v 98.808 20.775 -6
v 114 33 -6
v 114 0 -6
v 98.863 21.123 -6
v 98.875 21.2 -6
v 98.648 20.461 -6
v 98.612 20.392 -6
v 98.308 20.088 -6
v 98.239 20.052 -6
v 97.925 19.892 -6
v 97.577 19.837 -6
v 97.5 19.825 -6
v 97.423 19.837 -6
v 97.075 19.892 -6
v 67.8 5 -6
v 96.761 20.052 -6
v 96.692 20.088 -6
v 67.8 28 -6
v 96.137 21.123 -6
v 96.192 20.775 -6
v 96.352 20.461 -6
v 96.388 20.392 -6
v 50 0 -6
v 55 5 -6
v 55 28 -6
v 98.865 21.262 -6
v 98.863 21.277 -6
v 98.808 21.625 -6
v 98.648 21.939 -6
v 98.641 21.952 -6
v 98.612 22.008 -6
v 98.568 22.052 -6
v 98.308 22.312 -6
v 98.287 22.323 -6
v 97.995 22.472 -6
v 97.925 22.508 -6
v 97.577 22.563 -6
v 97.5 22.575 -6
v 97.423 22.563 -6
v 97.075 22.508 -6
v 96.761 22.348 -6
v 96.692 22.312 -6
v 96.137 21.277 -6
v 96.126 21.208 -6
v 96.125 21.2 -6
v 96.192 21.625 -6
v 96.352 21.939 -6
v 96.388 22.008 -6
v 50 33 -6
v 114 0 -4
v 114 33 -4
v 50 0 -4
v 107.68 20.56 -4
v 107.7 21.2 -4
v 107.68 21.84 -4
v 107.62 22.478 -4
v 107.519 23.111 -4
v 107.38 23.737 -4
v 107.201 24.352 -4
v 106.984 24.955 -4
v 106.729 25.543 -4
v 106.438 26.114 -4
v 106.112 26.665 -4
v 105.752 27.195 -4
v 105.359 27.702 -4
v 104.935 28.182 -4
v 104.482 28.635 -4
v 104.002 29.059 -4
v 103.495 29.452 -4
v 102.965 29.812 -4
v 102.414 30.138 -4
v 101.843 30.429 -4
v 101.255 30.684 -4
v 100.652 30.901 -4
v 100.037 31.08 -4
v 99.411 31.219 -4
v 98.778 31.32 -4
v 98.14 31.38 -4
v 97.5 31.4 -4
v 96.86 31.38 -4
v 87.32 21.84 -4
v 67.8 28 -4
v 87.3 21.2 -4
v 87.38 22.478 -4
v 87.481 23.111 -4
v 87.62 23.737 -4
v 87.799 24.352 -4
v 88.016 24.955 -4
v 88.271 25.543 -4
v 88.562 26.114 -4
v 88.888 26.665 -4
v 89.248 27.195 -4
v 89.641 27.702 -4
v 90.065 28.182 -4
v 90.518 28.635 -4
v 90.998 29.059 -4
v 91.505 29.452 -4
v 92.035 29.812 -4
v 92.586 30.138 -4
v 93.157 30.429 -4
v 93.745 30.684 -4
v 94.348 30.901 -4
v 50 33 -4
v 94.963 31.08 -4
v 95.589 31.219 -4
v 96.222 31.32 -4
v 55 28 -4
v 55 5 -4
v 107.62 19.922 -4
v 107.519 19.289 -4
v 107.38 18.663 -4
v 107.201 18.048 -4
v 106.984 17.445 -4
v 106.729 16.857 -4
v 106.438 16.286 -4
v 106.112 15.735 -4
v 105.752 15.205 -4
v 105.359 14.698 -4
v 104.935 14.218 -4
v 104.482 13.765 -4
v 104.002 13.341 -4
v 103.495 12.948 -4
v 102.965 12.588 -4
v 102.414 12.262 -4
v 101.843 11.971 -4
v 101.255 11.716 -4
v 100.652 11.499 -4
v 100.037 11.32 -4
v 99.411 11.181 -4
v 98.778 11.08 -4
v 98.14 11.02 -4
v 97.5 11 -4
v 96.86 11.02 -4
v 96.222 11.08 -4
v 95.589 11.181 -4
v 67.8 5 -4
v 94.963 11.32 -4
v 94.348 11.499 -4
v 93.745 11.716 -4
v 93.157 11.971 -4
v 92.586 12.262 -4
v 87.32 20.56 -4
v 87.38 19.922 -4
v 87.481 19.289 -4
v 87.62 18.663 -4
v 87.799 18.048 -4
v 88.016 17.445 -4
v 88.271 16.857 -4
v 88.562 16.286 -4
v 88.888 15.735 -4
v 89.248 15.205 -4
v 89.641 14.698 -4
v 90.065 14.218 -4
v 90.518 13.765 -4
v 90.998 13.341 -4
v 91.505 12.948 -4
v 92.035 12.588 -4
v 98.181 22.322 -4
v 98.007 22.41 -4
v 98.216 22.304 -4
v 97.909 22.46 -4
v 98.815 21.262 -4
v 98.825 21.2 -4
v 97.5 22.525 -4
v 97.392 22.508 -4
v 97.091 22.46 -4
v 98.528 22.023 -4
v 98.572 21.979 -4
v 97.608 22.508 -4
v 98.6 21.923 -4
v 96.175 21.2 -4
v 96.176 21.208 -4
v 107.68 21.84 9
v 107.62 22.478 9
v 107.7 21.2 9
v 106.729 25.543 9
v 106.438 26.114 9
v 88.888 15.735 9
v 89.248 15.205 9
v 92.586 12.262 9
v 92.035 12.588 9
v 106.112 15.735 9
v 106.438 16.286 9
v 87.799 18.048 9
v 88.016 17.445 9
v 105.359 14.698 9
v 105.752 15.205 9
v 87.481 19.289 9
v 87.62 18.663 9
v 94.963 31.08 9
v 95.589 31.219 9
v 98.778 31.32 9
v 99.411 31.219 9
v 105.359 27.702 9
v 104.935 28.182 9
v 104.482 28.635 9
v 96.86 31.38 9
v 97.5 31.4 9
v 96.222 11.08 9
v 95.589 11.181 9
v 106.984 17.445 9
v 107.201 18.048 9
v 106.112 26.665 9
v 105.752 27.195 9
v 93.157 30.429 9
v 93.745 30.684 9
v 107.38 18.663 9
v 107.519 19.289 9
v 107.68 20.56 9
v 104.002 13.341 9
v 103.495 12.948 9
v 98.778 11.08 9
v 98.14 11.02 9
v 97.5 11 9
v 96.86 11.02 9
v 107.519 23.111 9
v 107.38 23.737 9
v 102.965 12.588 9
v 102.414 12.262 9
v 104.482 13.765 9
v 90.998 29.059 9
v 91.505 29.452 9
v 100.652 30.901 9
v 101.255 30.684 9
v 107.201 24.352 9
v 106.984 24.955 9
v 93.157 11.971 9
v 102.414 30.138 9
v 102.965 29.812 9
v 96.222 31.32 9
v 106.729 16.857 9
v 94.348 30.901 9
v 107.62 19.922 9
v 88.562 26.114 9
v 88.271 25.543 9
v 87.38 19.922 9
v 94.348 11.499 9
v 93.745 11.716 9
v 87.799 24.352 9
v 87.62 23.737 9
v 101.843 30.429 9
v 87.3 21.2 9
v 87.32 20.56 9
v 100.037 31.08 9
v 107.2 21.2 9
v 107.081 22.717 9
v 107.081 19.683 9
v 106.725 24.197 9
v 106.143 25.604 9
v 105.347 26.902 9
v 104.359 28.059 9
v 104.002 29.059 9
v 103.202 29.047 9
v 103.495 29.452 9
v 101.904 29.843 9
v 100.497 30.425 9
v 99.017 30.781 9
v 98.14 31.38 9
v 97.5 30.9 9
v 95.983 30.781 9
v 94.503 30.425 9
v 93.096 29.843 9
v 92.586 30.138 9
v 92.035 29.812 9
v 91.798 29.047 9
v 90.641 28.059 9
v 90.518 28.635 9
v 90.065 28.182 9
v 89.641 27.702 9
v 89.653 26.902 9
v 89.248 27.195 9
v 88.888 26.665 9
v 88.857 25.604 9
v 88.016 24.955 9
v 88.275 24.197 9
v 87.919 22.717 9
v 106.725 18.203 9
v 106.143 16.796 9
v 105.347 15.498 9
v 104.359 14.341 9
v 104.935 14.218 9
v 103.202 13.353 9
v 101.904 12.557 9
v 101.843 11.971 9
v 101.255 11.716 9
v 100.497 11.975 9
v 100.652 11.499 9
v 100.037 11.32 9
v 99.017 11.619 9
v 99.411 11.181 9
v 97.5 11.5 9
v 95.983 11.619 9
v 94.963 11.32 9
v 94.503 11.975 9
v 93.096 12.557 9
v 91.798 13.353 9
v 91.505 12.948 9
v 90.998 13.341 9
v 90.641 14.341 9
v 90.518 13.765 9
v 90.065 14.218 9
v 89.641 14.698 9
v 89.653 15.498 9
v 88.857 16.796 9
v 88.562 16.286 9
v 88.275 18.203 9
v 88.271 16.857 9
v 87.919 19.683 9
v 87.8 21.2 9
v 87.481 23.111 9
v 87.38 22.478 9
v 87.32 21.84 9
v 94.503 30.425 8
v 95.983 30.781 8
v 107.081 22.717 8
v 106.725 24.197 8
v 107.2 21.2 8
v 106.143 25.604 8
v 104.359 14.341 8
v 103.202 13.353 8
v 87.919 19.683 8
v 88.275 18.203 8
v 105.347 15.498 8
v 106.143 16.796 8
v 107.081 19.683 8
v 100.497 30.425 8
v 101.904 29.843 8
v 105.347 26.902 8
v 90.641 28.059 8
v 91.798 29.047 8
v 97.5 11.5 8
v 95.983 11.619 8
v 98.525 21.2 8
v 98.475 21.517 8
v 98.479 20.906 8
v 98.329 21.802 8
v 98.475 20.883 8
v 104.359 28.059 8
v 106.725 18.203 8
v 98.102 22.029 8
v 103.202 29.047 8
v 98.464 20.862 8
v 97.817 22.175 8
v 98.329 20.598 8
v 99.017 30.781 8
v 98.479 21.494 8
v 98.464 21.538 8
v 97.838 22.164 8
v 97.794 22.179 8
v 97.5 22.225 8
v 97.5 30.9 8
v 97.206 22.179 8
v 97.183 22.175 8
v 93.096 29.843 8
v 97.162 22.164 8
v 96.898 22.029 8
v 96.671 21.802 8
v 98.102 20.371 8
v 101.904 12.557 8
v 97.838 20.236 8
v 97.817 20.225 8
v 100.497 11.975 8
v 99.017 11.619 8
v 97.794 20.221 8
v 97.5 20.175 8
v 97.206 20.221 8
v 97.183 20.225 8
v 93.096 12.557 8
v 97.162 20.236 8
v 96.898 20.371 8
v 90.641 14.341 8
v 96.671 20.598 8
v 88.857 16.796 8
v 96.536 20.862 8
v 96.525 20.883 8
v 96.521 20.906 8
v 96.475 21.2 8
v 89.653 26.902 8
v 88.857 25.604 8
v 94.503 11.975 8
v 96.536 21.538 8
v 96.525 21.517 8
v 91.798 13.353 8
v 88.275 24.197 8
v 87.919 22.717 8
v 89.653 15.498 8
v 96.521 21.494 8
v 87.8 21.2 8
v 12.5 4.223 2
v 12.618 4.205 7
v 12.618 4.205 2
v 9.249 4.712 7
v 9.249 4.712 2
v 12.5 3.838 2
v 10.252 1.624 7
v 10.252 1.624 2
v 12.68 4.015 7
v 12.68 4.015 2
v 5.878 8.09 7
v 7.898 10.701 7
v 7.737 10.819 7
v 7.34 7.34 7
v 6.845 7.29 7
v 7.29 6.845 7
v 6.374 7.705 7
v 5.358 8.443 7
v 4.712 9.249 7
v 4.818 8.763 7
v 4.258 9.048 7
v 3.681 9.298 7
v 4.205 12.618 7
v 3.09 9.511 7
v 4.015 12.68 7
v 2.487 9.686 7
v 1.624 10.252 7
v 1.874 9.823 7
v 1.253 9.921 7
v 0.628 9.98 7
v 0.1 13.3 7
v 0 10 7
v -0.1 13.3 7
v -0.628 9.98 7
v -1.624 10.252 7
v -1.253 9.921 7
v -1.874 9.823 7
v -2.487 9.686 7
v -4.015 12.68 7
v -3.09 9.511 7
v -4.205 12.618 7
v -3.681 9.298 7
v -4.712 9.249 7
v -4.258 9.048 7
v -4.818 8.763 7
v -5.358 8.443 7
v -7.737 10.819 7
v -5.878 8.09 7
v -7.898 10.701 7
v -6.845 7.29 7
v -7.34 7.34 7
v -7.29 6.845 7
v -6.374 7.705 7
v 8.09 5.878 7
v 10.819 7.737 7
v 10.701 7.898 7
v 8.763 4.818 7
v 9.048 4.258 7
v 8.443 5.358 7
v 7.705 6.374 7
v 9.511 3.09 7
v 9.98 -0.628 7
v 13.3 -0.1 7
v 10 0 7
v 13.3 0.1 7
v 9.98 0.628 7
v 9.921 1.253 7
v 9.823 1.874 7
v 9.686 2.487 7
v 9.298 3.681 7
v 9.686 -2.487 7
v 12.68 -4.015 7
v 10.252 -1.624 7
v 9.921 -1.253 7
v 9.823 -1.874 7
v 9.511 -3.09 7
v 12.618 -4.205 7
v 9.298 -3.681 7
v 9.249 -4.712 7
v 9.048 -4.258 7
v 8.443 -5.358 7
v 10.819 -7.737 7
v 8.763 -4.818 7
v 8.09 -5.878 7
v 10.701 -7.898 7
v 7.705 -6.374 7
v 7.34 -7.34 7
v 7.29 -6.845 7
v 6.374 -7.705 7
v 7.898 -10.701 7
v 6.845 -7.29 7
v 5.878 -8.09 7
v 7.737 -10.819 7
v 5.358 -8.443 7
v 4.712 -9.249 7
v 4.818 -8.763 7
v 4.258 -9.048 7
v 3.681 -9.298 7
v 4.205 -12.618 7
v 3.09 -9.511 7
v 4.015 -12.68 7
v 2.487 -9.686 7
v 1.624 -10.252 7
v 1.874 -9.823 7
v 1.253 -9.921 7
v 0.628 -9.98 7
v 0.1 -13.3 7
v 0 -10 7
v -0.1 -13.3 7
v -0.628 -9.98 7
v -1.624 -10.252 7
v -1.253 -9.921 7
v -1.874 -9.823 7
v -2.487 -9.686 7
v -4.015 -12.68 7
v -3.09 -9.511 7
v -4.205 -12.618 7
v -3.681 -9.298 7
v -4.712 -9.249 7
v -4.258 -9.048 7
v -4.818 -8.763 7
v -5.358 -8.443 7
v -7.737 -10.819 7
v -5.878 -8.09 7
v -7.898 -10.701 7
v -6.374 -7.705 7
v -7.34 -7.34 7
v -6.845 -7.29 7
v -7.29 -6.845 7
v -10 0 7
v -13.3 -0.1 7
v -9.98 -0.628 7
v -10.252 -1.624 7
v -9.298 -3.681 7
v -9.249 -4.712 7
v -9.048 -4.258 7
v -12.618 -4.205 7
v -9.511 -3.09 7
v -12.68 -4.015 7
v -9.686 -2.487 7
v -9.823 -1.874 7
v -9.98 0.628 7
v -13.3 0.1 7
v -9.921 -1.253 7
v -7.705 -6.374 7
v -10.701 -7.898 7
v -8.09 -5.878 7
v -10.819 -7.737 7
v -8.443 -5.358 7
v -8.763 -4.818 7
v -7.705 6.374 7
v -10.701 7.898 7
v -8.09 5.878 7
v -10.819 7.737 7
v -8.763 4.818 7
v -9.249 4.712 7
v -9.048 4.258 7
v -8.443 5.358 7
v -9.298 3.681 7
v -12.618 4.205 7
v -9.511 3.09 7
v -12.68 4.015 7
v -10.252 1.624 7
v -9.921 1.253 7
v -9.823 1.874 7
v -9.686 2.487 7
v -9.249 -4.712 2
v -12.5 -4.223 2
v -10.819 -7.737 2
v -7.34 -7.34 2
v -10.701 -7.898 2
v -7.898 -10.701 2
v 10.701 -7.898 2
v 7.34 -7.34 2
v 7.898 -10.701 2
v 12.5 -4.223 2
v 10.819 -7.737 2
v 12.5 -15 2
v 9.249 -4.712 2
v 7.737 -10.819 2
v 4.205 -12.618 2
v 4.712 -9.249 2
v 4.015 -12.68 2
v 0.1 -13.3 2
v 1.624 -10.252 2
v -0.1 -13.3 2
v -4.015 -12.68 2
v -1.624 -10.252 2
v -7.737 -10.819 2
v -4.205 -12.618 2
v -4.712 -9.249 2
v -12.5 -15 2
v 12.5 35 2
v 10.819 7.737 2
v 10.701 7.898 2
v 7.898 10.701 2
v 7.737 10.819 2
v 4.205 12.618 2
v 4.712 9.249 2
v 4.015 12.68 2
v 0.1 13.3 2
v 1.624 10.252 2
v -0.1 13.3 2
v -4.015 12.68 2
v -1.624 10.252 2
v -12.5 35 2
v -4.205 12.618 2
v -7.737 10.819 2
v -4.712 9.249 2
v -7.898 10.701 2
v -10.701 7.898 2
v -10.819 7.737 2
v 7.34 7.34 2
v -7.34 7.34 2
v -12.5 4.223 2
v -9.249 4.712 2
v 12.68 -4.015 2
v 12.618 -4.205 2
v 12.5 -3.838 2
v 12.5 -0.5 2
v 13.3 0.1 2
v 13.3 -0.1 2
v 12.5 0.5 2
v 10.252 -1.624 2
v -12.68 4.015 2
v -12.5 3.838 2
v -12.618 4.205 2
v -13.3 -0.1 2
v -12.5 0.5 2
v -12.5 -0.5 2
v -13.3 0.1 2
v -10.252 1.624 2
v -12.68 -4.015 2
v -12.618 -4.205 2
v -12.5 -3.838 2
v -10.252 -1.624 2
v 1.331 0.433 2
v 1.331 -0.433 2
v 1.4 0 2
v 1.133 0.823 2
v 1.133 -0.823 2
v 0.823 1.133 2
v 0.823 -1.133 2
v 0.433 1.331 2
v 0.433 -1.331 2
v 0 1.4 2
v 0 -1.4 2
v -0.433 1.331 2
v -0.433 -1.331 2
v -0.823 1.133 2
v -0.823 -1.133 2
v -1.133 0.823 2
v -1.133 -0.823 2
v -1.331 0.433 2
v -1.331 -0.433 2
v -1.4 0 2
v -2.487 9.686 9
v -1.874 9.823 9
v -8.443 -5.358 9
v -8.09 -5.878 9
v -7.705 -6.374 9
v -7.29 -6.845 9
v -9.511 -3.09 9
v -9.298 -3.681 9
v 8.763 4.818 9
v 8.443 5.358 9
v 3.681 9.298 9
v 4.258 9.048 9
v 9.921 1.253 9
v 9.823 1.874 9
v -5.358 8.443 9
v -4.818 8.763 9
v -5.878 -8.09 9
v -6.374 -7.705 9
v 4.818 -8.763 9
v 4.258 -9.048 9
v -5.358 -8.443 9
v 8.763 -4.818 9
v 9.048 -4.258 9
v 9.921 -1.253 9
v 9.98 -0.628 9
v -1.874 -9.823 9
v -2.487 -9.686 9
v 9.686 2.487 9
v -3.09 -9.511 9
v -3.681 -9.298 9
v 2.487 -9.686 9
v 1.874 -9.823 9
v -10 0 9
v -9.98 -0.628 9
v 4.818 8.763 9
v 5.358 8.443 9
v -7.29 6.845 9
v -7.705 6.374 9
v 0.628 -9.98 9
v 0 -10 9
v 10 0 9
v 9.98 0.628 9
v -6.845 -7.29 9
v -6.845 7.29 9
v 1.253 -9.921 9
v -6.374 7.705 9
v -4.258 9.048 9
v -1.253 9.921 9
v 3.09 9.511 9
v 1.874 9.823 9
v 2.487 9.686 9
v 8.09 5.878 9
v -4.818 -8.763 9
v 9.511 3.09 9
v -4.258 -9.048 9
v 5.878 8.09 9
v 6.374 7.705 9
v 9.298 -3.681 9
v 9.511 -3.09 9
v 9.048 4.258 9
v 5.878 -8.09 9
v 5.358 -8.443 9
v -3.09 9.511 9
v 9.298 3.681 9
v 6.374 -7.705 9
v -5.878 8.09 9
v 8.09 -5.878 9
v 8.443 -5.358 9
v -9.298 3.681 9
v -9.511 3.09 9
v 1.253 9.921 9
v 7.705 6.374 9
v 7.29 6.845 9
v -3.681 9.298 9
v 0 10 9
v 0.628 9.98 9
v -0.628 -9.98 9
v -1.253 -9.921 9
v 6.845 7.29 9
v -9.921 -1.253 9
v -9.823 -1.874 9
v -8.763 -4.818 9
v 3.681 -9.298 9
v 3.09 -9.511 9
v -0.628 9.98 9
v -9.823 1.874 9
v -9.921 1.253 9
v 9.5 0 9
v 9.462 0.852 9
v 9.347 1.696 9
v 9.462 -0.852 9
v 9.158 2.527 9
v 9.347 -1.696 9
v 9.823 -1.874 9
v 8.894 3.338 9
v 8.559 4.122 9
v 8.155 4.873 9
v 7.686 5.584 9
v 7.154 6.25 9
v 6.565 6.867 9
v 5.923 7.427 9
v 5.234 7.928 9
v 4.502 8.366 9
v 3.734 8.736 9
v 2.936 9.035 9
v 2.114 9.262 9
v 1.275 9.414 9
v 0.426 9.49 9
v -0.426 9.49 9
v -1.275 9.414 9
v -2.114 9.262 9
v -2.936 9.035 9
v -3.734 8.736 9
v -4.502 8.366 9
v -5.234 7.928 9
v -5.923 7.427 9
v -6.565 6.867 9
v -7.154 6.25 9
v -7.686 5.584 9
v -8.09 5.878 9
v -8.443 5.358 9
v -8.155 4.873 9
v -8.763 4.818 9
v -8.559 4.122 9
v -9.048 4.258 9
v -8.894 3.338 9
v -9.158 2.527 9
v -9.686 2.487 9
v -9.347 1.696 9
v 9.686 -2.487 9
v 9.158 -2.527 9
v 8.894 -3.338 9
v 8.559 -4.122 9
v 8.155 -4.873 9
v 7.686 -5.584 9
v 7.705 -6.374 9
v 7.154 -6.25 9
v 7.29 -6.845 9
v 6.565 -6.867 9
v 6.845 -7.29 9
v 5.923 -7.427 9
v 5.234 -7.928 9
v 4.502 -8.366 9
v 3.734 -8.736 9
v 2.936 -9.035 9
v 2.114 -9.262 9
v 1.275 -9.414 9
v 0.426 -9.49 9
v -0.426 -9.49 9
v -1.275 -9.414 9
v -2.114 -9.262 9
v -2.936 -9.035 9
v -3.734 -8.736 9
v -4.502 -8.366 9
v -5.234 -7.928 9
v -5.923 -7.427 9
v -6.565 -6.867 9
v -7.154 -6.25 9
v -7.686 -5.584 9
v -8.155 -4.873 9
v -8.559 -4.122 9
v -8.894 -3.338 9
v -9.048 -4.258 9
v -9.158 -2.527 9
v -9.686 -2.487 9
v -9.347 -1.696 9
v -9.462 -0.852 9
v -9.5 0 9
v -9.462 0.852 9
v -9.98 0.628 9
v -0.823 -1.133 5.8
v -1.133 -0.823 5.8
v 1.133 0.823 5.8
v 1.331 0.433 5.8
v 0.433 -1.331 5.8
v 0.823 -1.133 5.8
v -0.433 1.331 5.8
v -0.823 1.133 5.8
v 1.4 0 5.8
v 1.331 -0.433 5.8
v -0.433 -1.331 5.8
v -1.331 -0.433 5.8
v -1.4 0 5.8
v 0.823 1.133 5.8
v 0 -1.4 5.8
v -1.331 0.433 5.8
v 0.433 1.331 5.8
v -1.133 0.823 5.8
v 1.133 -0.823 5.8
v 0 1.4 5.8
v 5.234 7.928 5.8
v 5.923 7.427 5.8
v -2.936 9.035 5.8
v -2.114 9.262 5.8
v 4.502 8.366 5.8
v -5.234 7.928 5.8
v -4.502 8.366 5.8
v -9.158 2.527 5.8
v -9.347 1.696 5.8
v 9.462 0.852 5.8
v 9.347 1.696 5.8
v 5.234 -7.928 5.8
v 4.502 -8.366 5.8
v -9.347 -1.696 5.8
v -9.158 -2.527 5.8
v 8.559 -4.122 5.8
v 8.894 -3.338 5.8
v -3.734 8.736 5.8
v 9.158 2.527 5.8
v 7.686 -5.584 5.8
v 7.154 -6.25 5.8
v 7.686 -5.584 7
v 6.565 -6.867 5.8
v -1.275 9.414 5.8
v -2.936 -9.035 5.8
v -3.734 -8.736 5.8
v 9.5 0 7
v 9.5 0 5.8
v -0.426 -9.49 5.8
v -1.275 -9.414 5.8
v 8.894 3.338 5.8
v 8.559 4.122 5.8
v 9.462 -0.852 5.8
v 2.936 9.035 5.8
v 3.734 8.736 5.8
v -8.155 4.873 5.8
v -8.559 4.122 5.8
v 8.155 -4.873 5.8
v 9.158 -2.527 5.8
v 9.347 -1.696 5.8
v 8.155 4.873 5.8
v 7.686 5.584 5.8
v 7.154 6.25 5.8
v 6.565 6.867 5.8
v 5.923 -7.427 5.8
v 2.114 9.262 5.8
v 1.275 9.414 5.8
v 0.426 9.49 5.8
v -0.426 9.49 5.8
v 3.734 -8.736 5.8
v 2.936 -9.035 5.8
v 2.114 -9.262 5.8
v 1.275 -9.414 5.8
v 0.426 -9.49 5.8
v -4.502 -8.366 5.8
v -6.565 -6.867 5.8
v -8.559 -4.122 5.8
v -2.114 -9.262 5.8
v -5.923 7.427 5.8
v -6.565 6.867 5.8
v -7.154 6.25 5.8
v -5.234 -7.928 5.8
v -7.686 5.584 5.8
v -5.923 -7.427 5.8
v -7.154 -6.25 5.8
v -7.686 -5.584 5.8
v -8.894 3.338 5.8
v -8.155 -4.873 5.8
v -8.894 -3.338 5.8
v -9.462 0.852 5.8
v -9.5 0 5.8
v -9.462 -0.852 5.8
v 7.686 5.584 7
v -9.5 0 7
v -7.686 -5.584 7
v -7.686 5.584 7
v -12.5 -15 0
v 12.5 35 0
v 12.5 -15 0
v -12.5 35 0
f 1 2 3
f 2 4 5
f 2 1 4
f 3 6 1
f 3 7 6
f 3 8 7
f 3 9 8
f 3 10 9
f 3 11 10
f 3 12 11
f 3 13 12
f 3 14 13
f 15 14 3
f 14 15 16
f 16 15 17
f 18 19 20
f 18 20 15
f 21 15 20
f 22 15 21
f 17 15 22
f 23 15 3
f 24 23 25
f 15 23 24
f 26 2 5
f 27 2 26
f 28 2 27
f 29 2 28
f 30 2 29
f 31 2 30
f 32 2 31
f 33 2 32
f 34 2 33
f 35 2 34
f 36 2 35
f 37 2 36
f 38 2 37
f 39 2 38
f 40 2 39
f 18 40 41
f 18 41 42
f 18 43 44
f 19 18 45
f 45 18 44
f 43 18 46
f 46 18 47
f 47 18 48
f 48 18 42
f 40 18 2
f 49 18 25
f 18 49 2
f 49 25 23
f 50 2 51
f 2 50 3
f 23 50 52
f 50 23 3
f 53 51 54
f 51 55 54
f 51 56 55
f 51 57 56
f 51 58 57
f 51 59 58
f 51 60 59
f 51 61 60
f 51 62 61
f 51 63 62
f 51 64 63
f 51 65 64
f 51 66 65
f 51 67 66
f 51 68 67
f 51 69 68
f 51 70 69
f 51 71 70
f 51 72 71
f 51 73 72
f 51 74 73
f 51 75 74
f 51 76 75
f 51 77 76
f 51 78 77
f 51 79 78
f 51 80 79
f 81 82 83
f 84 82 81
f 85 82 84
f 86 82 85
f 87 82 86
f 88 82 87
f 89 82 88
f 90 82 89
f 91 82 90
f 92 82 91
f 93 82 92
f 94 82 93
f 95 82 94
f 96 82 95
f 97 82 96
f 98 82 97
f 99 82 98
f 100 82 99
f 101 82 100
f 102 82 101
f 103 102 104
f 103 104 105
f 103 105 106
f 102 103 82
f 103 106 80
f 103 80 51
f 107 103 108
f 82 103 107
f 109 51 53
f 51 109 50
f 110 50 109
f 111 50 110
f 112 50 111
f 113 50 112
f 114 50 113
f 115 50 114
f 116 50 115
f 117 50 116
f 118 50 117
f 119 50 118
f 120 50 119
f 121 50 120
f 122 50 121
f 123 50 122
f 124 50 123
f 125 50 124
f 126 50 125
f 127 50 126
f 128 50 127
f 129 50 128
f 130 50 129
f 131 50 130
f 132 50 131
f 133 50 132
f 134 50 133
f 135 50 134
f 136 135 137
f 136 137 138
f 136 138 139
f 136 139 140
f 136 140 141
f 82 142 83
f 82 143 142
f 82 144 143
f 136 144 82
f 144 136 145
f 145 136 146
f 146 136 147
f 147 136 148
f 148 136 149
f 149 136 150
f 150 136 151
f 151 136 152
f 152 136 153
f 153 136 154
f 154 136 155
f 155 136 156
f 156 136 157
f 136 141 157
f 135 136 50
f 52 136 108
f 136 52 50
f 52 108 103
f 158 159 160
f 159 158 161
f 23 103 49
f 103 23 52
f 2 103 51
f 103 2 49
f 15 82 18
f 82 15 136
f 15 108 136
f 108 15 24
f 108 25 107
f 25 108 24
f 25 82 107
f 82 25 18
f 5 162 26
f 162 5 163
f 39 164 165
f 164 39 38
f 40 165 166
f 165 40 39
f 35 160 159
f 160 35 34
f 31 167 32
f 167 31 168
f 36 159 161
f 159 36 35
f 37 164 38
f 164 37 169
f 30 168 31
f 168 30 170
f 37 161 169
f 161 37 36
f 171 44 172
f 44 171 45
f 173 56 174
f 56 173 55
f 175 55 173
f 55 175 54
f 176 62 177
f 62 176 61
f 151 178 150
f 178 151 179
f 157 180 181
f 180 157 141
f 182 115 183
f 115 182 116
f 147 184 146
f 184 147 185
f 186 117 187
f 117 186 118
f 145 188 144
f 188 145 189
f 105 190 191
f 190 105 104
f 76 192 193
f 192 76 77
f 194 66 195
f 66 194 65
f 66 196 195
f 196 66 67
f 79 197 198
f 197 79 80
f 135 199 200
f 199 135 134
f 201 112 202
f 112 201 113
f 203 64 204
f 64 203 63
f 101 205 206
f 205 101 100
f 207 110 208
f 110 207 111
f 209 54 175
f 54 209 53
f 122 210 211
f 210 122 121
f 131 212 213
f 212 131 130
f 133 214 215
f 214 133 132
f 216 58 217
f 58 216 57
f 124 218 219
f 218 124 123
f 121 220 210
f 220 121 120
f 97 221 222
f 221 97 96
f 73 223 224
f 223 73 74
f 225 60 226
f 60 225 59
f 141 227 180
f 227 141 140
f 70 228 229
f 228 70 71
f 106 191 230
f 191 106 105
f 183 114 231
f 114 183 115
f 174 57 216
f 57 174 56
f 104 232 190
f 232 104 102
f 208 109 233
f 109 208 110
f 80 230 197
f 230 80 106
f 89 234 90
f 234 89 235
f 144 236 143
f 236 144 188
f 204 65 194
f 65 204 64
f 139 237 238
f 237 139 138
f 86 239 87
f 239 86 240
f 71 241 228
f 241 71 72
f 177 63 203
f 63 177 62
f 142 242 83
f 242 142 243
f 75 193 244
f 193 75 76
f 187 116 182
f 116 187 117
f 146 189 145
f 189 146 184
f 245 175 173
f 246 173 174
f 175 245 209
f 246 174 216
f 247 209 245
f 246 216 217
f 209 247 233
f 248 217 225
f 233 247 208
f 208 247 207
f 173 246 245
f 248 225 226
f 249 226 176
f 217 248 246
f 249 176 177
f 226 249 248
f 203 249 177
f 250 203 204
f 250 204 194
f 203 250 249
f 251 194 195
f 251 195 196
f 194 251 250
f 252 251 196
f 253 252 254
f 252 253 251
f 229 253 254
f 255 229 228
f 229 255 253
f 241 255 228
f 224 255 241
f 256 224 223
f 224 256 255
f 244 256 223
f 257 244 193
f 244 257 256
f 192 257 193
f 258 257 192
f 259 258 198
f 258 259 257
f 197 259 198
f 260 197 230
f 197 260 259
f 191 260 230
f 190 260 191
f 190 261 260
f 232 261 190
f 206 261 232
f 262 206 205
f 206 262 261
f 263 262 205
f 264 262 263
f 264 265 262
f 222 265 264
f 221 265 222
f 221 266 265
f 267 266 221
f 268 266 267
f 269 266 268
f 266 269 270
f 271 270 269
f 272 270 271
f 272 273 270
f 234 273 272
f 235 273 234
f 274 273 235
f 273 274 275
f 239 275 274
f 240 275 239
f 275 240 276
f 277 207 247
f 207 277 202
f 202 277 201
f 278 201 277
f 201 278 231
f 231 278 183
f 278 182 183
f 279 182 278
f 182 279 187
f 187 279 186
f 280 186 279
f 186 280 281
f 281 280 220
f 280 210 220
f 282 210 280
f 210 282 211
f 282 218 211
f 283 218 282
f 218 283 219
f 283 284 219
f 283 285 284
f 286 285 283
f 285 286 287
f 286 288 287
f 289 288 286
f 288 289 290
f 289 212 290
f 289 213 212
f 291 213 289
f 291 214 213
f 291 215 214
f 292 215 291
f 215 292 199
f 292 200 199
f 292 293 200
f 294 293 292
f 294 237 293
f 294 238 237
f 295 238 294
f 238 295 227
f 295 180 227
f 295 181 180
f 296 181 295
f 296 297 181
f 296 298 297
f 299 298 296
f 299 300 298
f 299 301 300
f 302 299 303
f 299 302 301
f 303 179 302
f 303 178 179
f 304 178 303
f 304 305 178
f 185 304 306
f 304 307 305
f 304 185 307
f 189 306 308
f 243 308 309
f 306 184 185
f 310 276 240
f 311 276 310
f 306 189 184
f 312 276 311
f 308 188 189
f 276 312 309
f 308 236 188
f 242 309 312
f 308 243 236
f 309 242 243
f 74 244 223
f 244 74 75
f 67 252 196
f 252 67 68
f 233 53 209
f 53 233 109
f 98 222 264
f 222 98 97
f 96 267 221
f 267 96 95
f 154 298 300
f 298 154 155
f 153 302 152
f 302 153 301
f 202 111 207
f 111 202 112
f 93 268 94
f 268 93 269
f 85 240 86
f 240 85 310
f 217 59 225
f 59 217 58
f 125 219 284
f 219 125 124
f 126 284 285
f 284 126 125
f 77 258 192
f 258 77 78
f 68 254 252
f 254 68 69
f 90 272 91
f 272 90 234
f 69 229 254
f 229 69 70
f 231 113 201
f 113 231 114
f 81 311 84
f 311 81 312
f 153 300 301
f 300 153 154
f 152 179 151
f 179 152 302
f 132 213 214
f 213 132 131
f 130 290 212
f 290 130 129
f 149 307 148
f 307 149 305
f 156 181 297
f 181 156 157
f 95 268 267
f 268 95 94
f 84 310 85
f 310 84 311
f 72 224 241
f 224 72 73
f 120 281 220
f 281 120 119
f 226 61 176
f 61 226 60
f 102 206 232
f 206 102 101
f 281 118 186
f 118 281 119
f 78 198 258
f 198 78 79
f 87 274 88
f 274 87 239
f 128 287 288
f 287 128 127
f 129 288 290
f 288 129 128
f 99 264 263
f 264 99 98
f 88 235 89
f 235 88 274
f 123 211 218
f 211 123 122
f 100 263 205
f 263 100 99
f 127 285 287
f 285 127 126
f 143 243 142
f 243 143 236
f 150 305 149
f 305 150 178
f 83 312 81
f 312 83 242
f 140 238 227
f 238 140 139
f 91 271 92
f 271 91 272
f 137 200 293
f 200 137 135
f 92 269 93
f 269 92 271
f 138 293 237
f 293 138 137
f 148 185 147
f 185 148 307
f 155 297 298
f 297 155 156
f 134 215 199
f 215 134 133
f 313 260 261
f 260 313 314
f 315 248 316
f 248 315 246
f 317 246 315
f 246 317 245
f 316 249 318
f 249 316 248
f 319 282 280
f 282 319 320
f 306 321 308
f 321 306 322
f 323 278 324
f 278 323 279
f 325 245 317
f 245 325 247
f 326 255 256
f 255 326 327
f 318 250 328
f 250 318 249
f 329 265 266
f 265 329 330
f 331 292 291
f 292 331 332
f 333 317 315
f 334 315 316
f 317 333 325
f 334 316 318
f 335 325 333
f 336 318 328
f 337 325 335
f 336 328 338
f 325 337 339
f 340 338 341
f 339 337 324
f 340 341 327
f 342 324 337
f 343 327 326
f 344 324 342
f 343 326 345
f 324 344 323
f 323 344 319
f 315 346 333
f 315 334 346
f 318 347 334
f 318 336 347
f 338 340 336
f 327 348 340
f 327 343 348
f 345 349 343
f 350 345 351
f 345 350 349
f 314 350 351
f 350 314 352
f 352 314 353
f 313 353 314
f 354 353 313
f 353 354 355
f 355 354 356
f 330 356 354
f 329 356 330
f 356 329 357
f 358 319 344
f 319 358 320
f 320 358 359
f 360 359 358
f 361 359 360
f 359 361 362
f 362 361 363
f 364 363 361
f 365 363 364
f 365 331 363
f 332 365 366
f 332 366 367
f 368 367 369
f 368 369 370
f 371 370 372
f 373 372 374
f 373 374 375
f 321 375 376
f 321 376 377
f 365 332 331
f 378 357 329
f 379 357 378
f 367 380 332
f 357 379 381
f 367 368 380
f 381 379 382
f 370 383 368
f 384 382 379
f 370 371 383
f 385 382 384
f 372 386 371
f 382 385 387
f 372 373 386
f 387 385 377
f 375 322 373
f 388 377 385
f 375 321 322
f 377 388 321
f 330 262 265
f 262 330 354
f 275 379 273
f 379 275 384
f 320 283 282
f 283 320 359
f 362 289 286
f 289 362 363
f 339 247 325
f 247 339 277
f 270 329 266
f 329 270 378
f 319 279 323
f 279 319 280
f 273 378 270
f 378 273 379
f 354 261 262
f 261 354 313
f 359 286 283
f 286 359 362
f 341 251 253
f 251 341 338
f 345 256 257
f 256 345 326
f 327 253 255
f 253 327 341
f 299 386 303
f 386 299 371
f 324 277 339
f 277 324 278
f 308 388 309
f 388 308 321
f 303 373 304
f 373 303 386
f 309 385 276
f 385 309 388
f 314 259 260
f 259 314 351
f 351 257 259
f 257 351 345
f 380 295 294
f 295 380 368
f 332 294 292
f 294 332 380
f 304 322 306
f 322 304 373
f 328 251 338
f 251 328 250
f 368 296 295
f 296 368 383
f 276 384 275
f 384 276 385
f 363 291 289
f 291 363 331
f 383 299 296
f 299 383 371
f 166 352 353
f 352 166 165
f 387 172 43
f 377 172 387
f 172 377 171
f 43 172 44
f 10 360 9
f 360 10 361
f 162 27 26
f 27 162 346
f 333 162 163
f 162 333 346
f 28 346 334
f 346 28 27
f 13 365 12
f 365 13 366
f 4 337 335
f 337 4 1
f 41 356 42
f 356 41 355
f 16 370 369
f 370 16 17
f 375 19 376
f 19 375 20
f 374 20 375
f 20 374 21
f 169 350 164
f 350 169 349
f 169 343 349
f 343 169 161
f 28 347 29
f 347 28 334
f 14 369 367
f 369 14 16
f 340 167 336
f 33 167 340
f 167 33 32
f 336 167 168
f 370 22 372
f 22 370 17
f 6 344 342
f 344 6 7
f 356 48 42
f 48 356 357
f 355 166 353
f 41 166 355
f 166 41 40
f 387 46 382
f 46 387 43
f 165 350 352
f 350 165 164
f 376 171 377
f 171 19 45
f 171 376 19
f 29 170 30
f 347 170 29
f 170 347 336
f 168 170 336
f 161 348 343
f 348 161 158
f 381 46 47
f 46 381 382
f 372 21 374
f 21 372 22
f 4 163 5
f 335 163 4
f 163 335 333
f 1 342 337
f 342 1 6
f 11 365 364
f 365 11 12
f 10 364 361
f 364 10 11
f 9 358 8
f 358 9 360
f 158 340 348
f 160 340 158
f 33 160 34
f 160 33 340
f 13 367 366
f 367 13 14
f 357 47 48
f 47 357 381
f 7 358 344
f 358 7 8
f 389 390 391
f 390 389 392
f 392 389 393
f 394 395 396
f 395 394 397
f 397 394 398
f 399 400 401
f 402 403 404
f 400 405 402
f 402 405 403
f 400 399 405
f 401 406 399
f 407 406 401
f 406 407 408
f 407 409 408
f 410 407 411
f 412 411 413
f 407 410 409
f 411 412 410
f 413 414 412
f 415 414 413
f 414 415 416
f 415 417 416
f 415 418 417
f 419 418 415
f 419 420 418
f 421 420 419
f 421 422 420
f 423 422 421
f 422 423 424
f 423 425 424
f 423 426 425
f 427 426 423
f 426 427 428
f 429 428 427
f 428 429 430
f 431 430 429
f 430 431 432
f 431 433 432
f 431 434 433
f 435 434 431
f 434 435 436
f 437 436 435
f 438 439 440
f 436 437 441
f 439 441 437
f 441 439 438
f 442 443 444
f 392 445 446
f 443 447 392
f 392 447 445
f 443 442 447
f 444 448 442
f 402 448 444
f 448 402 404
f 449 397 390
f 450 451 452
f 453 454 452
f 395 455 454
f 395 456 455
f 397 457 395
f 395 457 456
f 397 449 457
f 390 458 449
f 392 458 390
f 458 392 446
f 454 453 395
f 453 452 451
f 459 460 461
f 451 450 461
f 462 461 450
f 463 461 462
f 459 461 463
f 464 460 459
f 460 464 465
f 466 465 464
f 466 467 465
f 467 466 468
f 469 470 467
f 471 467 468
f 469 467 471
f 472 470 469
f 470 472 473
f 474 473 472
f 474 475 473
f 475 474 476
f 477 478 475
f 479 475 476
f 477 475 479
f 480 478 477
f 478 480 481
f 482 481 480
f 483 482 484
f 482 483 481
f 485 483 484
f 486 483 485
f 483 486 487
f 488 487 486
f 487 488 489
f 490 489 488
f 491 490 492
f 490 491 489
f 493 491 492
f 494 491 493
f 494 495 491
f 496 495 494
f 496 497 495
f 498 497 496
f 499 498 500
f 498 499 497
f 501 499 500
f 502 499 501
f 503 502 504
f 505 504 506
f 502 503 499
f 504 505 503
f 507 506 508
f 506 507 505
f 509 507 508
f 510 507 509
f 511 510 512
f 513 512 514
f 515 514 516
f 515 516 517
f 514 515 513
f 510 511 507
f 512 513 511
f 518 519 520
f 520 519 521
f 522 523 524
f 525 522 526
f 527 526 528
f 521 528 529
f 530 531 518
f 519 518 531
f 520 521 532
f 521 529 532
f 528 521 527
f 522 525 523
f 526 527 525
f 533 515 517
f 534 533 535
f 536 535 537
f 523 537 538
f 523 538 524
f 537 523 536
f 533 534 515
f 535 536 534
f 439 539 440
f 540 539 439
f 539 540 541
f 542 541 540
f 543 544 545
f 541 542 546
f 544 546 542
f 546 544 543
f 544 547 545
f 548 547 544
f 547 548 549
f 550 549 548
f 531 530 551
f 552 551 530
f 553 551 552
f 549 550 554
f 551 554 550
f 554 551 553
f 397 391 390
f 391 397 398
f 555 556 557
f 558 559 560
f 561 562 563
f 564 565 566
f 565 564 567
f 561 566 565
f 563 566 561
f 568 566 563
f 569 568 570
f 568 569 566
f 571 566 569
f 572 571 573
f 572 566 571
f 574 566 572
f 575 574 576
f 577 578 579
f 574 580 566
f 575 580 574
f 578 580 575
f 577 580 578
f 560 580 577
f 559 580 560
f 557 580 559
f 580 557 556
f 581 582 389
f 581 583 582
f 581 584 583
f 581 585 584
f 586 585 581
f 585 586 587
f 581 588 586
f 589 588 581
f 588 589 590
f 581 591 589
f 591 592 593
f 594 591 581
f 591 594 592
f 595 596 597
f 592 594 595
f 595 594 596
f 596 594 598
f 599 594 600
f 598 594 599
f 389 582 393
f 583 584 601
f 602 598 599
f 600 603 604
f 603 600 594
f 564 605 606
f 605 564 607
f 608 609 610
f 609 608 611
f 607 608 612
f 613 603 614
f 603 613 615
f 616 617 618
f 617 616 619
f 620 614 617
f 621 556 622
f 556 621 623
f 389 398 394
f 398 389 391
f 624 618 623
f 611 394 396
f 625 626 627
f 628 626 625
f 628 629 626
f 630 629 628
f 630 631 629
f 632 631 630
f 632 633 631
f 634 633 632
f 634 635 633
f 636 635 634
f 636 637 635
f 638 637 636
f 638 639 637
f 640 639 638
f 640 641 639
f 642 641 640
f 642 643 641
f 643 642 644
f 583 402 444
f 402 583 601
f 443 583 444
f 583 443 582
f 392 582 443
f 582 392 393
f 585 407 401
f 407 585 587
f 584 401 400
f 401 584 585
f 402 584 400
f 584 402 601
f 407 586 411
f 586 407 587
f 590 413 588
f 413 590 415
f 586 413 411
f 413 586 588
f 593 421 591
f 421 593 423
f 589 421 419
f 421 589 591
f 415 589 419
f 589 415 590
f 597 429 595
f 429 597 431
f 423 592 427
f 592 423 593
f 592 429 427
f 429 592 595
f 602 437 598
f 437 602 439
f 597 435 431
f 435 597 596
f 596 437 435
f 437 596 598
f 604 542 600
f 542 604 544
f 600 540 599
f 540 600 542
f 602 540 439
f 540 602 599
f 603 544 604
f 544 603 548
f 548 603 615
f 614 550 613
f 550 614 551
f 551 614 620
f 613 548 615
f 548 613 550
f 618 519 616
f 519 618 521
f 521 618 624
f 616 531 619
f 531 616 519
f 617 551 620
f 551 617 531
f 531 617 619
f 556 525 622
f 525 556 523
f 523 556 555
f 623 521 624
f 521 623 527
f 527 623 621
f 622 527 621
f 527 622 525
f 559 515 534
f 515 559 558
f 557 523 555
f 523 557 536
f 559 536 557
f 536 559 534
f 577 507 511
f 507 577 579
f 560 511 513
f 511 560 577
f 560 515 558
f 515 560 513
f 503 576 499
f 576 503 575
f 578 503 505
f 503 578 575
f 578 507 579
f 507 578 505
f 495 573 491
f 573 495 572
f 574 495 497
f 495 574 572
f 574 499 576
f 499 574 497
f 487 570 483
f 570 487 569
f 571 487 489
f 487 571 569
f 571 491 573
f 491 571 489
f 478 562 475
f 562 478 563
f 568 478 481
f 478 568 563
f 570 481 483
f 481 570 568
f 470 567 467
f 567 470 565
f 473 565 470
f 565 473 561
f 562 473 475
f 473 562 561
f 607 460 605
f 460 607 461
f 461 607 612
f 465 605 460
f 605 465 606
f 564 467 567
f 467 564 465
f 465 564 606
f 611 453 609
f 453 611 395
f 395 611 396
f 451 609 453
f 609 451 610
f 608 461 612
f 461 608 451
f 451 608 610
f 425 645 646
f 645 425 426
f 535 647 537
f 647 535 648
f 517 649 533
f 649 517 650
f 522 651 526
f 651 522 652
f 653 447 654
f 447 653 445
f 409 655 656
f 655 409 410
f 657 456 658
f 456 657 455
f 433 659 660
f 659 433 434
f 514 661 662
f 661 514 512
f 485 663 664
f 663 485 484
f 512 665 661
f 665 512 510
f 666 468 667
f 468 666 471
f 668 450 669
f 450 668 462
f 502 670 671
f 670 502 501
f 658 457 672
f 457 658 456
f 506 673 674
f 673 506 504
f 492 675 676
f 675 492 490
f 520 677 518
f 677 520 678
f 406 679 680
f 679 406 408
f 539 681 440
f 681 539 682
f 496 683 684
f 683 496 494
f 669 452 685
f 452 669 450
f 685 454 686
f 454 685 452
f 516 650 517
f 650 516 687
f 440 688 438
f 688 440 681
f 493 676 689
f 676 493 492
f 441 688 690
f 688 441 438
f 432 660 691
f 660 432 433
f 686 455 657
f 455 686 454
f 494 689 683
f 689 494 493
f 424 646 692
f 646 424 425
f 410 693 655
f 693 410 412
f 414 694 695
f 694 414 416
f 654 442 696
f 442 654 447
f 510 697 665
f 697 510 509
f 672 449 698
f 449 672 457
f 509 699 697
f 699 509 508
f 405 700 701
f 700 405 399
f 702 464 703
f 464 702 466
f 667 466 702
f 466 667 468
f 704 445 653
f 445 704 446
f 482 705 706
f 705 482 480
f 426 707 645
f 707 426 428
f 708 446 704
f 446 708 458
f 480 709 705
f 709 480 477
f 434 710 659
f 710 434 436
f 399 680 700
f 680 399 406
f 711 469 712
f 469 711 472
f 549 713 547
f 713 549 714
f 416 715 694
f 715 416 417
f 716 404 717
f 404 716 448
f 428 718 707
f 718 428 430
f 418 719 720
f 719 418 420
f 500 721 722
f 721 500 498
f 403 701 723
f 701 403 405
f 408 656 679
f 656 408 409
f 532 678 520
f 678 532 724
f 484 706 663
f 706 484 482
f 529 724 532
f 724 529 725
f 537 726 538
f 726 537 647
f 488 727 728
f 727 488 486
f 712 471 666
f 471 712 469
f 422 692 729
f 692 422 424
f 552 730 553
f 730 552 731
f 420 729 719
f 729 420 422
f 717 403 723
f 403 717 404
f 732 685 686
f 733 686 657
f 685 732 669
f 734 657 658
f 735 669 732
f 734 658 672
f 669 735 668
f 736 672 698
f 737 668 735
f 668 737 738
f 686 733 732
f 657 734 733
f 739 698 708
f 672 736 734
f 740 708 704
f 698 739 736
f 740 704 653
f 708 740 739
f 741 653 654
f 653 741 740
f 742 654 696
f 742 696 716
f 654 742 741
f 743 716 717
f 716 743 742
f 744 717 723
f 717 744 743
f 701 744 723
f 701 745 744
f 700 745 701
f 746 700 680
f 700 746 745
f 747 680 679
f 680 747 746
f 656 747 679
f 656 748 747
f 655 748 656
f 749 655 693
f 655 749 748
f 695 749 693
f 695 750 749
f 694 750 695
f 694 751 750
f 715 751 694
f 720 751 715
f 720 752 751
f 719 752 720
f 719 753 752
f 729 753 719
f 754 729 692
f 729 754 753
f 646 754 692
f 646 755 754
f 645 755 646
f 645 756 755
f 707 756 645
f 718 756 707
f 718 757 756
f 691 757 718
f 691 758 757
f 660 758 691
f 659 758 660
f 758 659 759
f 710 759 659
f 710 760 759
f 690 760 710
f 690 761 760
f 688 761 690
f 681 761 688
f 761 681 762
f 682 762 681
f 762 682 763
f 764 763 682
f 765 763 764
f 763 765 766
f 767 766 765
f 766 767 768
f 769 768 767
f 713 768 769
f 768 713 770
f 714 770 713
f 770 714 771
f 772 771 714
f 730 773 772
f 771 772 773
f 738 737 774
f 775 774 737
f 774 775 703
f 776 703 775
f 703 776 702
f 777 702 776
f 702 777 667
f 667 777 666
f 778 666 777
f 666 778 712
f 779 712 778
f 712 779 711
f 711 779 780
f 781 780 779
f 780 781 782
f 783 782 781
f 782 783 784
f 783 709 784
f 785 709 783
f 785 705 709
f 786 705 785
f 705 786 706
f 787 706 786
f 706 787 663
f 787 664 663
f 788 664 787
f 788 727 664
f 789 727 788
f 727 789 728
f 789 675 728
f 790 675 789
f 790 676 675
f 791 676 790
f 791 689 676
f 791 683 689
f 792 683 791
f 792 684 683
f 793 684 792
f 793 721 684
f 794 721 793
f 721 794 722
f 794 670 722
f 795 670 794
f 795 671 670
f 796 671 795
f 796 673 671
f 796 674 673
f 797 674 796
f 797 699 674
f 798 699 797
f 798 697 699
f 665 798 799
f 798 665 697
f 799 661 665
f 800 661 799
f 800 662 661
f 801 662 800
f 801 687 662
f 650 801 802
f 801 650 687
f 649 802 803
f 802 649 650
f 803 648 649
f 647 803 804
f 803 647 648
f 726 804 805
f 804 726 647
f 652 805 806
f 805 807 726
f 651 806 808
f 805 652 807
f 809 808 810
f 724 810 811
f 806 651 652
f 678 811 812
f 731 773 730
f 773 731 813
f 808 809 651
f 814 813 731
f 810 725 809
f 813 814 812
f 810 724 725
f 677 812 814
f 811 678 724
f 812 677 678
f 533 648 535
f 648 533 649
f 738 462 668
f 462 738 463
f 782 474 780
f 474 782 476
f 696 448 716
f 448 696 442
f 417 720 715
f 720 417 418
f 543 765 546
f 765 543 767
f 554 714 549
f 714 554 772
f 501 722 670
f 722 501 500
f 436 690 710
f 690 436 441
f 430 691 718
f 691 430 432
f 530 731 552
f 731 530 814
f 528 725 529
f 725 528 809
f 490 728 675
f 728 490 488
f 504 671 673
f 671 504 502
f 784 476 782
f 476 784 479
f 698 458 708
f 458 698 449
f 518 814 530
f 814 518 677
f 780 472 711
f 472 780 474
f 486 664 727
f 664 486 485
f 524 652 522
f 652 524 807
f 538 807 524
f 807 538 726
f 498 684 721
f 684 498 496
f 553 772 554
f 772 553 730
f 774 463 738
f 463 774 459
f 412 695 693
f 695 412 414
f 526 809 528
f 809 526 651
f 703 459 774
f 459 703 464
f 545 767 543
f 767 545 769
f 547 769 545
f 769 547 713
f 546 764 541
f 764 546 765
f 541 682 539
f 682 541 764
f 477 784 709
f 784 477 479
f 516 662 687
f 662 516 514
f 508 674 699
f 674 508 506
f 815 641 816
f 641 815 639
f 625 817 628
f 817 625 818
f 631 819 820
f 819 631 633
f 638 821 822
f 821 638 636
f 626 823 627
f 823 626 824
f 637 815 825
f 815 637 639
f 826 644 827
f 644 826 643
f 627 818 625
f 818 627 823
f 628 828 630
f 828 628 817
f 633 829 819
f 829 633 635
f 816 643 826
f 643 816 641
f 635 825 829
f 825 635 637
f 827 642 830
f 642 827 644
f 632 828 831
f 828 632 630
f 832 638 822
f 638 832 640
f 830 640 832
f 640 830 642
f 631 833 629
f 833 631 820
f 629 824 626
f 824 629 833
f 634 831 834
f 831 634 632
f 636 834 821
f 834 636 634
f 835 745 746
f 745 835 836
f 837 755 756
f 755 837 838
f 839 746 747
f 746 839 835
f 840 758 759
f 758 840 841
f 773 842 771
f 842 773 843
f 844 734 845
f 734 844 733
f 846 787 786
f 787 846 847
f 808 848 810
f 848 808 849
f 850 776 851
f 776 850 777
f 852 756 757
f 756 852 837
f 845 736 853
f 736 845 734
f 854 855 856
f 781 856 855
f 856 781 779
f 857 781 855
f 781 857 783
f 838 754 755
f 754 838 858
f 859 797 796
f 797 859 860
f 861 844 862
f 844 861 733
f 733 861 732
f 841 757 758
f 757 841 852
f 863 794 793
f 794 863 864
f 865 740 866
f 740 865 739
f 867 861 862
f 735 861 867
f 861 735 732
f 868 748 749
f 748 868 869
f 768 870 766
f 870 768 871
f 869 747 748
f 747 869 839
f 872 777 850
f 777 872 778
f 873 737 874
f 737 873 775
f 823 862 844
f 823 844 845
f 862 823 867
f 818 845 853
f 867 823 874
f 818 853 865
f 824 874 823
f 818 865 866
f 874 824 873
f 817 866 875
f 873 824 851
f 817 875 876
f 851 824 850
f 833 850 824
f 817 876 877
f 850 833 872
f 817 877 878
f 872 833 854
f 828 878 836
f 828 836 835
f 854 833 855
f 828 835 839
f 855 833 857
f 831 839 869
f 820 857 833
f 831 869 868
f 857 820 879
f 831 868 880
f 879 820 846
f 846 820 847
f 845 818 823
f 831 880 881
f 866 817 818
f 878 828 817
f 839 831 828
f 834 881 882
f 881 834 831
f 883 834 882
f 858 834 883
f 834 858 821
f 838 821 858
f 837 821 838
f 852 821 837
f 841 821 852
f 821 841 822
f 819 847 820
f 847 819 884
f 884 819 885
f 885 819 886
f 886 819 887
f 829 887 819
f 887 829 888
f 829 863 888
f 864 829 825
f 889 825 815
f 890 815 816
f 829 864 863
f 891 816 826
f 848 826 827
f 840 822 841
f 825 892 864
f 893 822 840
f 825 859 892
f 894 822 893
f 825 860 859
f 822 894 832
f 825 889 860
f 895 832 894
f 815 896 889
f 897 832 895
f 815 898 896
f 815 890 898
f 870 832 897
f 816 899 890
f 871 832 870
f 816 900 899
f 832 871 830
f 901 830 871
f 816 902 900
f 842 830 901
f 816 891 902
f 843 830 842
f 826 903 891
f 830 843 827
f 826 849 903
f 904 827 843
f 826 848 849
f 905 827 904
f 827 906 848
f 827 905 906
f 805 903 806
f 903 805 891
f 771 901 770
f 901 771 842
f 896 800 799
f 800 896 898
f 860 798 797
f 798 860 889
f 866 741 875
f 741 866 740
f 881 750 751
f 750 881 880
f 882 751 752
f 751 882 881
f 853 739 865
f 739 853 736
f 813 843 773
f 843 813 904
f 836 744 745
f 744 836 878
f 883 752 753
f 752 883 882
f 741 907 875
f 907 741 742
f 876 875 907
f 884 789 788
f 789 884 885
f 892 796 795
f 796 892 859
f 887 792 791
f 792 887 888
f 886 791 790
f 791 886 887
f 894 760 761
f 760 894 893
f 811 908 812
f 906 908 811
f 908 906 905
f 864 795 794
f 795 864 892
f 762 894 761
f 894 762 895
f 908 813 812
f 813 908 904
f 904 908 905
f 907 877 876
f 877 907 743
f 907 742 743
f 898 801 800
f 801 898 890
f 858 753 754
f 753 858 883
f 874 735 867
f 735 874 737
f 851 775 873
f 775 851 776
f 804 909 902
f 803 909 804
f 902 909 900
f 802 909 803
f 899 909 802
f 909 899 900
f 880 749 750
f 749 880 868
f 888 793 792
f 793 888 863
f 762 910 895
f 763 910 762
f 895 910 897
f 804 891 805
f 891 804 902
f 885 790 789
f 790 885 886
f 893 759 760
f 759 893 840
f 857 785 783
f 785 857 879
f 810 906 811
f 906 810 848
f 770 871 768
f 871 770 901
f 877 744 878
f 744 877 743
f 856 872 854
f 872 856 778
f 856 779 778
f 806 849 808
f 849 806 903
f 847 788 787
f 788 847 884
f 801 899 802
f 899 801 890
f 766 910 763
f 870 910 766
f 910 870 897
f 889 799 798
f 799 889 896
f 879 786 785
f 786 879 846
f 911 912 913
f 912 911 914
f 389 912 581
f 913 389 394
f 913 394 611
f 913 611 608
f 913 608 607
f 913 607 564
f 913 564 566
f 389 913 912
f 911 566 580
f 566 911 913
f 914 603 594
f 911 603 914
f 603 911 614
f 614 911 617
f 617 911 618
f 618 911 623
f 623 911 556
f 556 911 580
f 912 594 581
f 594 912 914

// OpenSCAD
bearing_outer_bore = 19/2;
buffer = 1/2;

module tooth(degree,radius,h) {
    points = [ [0,-2] , [0,2] , [3.8,0.1], [3.8,-0.1] ];
    x = radius * cos(degree);
    y = radius * sin(degree);
    translate([x,y,0]) {
        rotate([0,0,degree]) {
            linear_extrude(height = h) {
                polygon(points);
            }
        }
    }
}

module gear_with_bearing(teeth, thickness, inner_bore, outer_bore) {
    difference() {

        cylinder(thickness,outer_bore,outer_bore,$fn = 100);
        translate([0,0,-1]) {
            cylinder(thickness+2,inner_bore,inner_bore,$fn = 20);
    
        }
        translate([0,0,thickness-3.2]) {
            cylinder(thickness,bearing_outer_bore,bearing_outer_bore, $fn = 70);
        }
    }
    deg = 360/teeth;
    for (i = [deg:deg:360]) {
        tooth(i,outer_bore-.5,thickness - 2);
    }
}

module drive_gear(teeth, thickness, inner_bore, outer_bore) {
    difference() {

        cylinder(thickness,outer_bore,outer_bore,$fn = 100);
        translate([0,0,-1]) {
            cylinder(thickness+2,inner_bore,inner_bore,$fn = 20);
            
        }
    }
    deg = 360/teeth;
    for (i = [deg:deg:360]) {
        tooth(i,outer_bore-1);
    }
}

module base(width, length) {
    base_points = [ [0,0],[length,0],[length,width],[0,width] ];
    cutout_width = 23;
    cutout_len = 12.8;
    axel_x = 5 + cutout_width/2 + 31; // two gears added 10.6 + 24.94 + buffer
    axel_y = 21.2;
    cutout_points = [ [0,0],[cutout_len,0],[cutout_len,cutout_width],[0,cutout_width]];
    difference() {
        linear_extrude(height=2) {
            polygon(base_points);
        }
        translate ([5,5,-1]) {
            linear_extrude(height=4) {
                polygon(cutout_points);
            }
        }
        translate([axel_x,axel_y,-5]) {
            cylinder(20,1.5,$fn=20);
        }
    }
    translate([axel_x,axel_y,0]) {
        difference() {
            cylinder(h=15,r=bearing_outer_bore + buffer+.2, $fn=100);
            translate([0,0,14]) {
                cylinder(h=2, r=bearing_outer_bore + 0.2);
            }
            translate([0,0,-5]) {
                cylinder(20,1.5,$fn=20);
            }
        }
    }
}

translate([50,0,-6]) {
    base(33,64);
}

//translate([-50,0,0]) {
//    gear_with_bearing(20,3.6,1.4,bearing_outer_bore + buffer);
//}

module gear_platform(length,width) {
    base_points = [ [0,0],[length,0],[length,width],[0,width] ];

    translate([-length/2,-15,0]) {
            linear_extrude(height=2) {
                polygon(base_points);
            }
    }
    translate([0,0,2]) {
      gear_with_bearing(20,7,1.4,bearing_outer_bore + buffer);
    }
}

gear_platform (25,50);


//translate ([0,0,-6]) {
//    drive_gear(50,2,1.4,bearing_outer_bore + (27*buffer));
//}

/**
 *  Parametric servo arm generator for OpenScad
 *  Générateur de palonnier de servo pour OpenScad
 *
 *  Copyright (c) 2012 Charles Rincheval.  All rights reserved.
 *
 *  This library is free software; you can redistribute it and/or
 *  modify it under the terms of the GNU Lesser General Public
 *  License as published by the Free Software Foundation; either
 *  version 2.1 of the License, or (at your option) any later version.
 *
 *  This library is distributed in the hope that it will be useful,
 *  but WITHOUT ANY WARRANTY; without even the implied warranty of
 *  MERCHANTABILITY or FITNESS FOR A PARTICULAR PURPOSE.  See the GNU
 *  Lesser General Public License for more details.
 *
 *  You should have received a copy of the GNU Lesser General Public
 *  License along with this library; if not, write to the Free Software
 *  Foundation, Inc., 51 Franklin St, Fifth Floor, Boston, MA  02110-1301  USA
 *
 *  Last update :
 *  https://github.com/hugokernel/OpenSCAD_ServoArms
 *
 *  http://www.digitalspirit.org/
 */

$fn = 40;

/**
 *  Clear between arm head and servo head
 *  With PLA material, use clear : 0.3, for ABS, use 0.2
 */
SERVO_HEAD_CLEAR = 0.2;

/**
 *  Head / Tooth parameters
 *  Futaba 3F Standard Spline
 *  http://www.servocity.com/html/futaba_servo_splines.html
 *
 *  First array (head related) :
 *  0. Head external diameter
 *  1. Head heigth
 *  2. Head thickness
 *  3. Head screw diameter
 *
 *  Second array (tooth related) :
 *  0. Tooth count
 *  1. Tooth height
 *  2. Tooth length
 *  3. Tooth width
 */
FUTABA_3F_SPLINE = [
    [4.87, 4, 1.1, 2.5],
    [25, 0.3, 0.7, 0.2]
];

module servo_futaba_3f(length, count) {
    servo_arm(FUTABA_3F_SPLINE, [length, count]);
}

/**
 *  If you want to support a new servo, juste add a new spline definition array
 *  and a module named like servo_XXX_YYY where XXX is servo brand and YYY is the
 *  connection type (3f) or the servo type (s3003)
 */

module servo_standard(length, count) {
    servo_futaba_3f(length, count);
}

/**
 *  Tooth
 *
 *    |<-w->|
 *    |_____|___
 *    /     \  ^h
 *  _/       \_v
 *   |<--l-->|
 *
 *  - tooth length (l)
 *  - tooth width (w)
 *  - tooth height (h)
 *  - height
 *
 */
module servo_head_tooth(length, width, height, head_height) {
    linear_extrude(height = head_height) {
        polygon([[-length / 2, 0], [-width / 2, height], [width / 2, height], [length / 2,0]]);
    }
}

/**
 *  Servo head
 */
module servo_head(params, clear = SERVO_HEAD_CLEAR) {

    head = params[0];
    tooth = params[1];

    head_diameter = head[0];
    head_height = head[1];
    //head_heigth

    tooth_count = tooth[0];
    tooth_height = tooth[1];
    tooth_length = tooth[2];
    tooth_width = tooth[3];

    % cylinder(r = head_diameter / 2, h = head_height + 1);

    cylinder(r = head_diameter / 2 - tooth_height + 0.03 + clear, h = head_height);

    for (i = [0 : tooth_count]) {
        rotate([0, 0, i * (360 / tooth_count)]) {
            translate([0, head_diameter / 2 - tooth_height + clear, 0]) {
                servo_head_tooth(tooth_length, tooth_width, tooth_height, head_height);
            }
        }
    }
}

/**
 *  Servo hold
 *  - Head / Tooth parameters
 *  - Arms params (length and count)
 */
module servo_arm(params, arms) {

    head = params[0];
    tooth = params[1];

    head_diameter = head[0];
    head_height = head[1];
    head_thickness = head[2];
    head_screw_diameter = head[3];

    tooth_length = tooth[2];
    tooth_width = tooth[3];

    arm_length = arms[0];
    arm_count = arms[1];

    /**
     *  Servo arm
     *  - length is from center to last hole
     */
    module arm(tooth_length, tooth_width, reinforcement_height, head_height, hole_count = 1) {
        arm_screw_diameter = 2;

        difference() {
            union() {
                cylinder(r = tooth_width / 2, h = head_height);

                linear_extrude(height = head_height) {
                    polygon([
                        [-tooth_width / 2, 0], [-tooth_width / 3, tooth_length],
                        [tooth_width / 3, tooth_length], [tooth_width / 2, 0]
                    ]);
                }

                translate([0, tooth_length, 0]) {
                    cylinder(r = tooth_width / 3, h = head_height);
                }

                if (tooth_length >= 12) {
                    translate([-head_height / 2 + 2, head_diameter / 2 + head_thickness - 0.5, -4]) {
                        rotate([90, 0, 0]) {
                            rotate([0, -90, 0]) {
                                linear_extrude(height = head_height) {
                                    polygon([
                                        [-tooth_length / 1.7, 4], [0, 4], [0, - reinforcement_height + 5],
                                        [-2, - reinforcement_height + 5]
                                    ]);
                                }
                            }
                        }
                    }
                }
            }

            // Hole
            for (i = [0 : hole_count - 1]) {
                //translate([0, length - (length / hole_count * i), -1]) {
                translate([0, tooth_length - (4 * i), -1]) {
                    cylinder(r = arm_screw_diameter / 2, h = 10);
                }
            }

            cylinder(r = head_screw_diameter / 2, h = 10);
        }
    }

    difference() {
        translate([0, 0, 0.1]) {
            cylinder(r = head_diameter / 2 + head_thickness, h = head_height + 1);
        }

        cylinder(r = head_screw_diameter / 2, h = 10);

        servo_head(params);
    }

    arm_thickness = head_thickness;

    // Arm
    translate([0, 0, head_height]) {
        for (i = [0 : arm_count - 1]) {
            rotate([0, 0, i * (360 / arm_count)]) {
                arm(arm_length, head_diameter + arm_thickness * 2, head_height, 2);
            }
        }
    }
}

module demo() {
    rotate([0, 180, 0])
        servo_standard(20, 4);
}

// demo();
